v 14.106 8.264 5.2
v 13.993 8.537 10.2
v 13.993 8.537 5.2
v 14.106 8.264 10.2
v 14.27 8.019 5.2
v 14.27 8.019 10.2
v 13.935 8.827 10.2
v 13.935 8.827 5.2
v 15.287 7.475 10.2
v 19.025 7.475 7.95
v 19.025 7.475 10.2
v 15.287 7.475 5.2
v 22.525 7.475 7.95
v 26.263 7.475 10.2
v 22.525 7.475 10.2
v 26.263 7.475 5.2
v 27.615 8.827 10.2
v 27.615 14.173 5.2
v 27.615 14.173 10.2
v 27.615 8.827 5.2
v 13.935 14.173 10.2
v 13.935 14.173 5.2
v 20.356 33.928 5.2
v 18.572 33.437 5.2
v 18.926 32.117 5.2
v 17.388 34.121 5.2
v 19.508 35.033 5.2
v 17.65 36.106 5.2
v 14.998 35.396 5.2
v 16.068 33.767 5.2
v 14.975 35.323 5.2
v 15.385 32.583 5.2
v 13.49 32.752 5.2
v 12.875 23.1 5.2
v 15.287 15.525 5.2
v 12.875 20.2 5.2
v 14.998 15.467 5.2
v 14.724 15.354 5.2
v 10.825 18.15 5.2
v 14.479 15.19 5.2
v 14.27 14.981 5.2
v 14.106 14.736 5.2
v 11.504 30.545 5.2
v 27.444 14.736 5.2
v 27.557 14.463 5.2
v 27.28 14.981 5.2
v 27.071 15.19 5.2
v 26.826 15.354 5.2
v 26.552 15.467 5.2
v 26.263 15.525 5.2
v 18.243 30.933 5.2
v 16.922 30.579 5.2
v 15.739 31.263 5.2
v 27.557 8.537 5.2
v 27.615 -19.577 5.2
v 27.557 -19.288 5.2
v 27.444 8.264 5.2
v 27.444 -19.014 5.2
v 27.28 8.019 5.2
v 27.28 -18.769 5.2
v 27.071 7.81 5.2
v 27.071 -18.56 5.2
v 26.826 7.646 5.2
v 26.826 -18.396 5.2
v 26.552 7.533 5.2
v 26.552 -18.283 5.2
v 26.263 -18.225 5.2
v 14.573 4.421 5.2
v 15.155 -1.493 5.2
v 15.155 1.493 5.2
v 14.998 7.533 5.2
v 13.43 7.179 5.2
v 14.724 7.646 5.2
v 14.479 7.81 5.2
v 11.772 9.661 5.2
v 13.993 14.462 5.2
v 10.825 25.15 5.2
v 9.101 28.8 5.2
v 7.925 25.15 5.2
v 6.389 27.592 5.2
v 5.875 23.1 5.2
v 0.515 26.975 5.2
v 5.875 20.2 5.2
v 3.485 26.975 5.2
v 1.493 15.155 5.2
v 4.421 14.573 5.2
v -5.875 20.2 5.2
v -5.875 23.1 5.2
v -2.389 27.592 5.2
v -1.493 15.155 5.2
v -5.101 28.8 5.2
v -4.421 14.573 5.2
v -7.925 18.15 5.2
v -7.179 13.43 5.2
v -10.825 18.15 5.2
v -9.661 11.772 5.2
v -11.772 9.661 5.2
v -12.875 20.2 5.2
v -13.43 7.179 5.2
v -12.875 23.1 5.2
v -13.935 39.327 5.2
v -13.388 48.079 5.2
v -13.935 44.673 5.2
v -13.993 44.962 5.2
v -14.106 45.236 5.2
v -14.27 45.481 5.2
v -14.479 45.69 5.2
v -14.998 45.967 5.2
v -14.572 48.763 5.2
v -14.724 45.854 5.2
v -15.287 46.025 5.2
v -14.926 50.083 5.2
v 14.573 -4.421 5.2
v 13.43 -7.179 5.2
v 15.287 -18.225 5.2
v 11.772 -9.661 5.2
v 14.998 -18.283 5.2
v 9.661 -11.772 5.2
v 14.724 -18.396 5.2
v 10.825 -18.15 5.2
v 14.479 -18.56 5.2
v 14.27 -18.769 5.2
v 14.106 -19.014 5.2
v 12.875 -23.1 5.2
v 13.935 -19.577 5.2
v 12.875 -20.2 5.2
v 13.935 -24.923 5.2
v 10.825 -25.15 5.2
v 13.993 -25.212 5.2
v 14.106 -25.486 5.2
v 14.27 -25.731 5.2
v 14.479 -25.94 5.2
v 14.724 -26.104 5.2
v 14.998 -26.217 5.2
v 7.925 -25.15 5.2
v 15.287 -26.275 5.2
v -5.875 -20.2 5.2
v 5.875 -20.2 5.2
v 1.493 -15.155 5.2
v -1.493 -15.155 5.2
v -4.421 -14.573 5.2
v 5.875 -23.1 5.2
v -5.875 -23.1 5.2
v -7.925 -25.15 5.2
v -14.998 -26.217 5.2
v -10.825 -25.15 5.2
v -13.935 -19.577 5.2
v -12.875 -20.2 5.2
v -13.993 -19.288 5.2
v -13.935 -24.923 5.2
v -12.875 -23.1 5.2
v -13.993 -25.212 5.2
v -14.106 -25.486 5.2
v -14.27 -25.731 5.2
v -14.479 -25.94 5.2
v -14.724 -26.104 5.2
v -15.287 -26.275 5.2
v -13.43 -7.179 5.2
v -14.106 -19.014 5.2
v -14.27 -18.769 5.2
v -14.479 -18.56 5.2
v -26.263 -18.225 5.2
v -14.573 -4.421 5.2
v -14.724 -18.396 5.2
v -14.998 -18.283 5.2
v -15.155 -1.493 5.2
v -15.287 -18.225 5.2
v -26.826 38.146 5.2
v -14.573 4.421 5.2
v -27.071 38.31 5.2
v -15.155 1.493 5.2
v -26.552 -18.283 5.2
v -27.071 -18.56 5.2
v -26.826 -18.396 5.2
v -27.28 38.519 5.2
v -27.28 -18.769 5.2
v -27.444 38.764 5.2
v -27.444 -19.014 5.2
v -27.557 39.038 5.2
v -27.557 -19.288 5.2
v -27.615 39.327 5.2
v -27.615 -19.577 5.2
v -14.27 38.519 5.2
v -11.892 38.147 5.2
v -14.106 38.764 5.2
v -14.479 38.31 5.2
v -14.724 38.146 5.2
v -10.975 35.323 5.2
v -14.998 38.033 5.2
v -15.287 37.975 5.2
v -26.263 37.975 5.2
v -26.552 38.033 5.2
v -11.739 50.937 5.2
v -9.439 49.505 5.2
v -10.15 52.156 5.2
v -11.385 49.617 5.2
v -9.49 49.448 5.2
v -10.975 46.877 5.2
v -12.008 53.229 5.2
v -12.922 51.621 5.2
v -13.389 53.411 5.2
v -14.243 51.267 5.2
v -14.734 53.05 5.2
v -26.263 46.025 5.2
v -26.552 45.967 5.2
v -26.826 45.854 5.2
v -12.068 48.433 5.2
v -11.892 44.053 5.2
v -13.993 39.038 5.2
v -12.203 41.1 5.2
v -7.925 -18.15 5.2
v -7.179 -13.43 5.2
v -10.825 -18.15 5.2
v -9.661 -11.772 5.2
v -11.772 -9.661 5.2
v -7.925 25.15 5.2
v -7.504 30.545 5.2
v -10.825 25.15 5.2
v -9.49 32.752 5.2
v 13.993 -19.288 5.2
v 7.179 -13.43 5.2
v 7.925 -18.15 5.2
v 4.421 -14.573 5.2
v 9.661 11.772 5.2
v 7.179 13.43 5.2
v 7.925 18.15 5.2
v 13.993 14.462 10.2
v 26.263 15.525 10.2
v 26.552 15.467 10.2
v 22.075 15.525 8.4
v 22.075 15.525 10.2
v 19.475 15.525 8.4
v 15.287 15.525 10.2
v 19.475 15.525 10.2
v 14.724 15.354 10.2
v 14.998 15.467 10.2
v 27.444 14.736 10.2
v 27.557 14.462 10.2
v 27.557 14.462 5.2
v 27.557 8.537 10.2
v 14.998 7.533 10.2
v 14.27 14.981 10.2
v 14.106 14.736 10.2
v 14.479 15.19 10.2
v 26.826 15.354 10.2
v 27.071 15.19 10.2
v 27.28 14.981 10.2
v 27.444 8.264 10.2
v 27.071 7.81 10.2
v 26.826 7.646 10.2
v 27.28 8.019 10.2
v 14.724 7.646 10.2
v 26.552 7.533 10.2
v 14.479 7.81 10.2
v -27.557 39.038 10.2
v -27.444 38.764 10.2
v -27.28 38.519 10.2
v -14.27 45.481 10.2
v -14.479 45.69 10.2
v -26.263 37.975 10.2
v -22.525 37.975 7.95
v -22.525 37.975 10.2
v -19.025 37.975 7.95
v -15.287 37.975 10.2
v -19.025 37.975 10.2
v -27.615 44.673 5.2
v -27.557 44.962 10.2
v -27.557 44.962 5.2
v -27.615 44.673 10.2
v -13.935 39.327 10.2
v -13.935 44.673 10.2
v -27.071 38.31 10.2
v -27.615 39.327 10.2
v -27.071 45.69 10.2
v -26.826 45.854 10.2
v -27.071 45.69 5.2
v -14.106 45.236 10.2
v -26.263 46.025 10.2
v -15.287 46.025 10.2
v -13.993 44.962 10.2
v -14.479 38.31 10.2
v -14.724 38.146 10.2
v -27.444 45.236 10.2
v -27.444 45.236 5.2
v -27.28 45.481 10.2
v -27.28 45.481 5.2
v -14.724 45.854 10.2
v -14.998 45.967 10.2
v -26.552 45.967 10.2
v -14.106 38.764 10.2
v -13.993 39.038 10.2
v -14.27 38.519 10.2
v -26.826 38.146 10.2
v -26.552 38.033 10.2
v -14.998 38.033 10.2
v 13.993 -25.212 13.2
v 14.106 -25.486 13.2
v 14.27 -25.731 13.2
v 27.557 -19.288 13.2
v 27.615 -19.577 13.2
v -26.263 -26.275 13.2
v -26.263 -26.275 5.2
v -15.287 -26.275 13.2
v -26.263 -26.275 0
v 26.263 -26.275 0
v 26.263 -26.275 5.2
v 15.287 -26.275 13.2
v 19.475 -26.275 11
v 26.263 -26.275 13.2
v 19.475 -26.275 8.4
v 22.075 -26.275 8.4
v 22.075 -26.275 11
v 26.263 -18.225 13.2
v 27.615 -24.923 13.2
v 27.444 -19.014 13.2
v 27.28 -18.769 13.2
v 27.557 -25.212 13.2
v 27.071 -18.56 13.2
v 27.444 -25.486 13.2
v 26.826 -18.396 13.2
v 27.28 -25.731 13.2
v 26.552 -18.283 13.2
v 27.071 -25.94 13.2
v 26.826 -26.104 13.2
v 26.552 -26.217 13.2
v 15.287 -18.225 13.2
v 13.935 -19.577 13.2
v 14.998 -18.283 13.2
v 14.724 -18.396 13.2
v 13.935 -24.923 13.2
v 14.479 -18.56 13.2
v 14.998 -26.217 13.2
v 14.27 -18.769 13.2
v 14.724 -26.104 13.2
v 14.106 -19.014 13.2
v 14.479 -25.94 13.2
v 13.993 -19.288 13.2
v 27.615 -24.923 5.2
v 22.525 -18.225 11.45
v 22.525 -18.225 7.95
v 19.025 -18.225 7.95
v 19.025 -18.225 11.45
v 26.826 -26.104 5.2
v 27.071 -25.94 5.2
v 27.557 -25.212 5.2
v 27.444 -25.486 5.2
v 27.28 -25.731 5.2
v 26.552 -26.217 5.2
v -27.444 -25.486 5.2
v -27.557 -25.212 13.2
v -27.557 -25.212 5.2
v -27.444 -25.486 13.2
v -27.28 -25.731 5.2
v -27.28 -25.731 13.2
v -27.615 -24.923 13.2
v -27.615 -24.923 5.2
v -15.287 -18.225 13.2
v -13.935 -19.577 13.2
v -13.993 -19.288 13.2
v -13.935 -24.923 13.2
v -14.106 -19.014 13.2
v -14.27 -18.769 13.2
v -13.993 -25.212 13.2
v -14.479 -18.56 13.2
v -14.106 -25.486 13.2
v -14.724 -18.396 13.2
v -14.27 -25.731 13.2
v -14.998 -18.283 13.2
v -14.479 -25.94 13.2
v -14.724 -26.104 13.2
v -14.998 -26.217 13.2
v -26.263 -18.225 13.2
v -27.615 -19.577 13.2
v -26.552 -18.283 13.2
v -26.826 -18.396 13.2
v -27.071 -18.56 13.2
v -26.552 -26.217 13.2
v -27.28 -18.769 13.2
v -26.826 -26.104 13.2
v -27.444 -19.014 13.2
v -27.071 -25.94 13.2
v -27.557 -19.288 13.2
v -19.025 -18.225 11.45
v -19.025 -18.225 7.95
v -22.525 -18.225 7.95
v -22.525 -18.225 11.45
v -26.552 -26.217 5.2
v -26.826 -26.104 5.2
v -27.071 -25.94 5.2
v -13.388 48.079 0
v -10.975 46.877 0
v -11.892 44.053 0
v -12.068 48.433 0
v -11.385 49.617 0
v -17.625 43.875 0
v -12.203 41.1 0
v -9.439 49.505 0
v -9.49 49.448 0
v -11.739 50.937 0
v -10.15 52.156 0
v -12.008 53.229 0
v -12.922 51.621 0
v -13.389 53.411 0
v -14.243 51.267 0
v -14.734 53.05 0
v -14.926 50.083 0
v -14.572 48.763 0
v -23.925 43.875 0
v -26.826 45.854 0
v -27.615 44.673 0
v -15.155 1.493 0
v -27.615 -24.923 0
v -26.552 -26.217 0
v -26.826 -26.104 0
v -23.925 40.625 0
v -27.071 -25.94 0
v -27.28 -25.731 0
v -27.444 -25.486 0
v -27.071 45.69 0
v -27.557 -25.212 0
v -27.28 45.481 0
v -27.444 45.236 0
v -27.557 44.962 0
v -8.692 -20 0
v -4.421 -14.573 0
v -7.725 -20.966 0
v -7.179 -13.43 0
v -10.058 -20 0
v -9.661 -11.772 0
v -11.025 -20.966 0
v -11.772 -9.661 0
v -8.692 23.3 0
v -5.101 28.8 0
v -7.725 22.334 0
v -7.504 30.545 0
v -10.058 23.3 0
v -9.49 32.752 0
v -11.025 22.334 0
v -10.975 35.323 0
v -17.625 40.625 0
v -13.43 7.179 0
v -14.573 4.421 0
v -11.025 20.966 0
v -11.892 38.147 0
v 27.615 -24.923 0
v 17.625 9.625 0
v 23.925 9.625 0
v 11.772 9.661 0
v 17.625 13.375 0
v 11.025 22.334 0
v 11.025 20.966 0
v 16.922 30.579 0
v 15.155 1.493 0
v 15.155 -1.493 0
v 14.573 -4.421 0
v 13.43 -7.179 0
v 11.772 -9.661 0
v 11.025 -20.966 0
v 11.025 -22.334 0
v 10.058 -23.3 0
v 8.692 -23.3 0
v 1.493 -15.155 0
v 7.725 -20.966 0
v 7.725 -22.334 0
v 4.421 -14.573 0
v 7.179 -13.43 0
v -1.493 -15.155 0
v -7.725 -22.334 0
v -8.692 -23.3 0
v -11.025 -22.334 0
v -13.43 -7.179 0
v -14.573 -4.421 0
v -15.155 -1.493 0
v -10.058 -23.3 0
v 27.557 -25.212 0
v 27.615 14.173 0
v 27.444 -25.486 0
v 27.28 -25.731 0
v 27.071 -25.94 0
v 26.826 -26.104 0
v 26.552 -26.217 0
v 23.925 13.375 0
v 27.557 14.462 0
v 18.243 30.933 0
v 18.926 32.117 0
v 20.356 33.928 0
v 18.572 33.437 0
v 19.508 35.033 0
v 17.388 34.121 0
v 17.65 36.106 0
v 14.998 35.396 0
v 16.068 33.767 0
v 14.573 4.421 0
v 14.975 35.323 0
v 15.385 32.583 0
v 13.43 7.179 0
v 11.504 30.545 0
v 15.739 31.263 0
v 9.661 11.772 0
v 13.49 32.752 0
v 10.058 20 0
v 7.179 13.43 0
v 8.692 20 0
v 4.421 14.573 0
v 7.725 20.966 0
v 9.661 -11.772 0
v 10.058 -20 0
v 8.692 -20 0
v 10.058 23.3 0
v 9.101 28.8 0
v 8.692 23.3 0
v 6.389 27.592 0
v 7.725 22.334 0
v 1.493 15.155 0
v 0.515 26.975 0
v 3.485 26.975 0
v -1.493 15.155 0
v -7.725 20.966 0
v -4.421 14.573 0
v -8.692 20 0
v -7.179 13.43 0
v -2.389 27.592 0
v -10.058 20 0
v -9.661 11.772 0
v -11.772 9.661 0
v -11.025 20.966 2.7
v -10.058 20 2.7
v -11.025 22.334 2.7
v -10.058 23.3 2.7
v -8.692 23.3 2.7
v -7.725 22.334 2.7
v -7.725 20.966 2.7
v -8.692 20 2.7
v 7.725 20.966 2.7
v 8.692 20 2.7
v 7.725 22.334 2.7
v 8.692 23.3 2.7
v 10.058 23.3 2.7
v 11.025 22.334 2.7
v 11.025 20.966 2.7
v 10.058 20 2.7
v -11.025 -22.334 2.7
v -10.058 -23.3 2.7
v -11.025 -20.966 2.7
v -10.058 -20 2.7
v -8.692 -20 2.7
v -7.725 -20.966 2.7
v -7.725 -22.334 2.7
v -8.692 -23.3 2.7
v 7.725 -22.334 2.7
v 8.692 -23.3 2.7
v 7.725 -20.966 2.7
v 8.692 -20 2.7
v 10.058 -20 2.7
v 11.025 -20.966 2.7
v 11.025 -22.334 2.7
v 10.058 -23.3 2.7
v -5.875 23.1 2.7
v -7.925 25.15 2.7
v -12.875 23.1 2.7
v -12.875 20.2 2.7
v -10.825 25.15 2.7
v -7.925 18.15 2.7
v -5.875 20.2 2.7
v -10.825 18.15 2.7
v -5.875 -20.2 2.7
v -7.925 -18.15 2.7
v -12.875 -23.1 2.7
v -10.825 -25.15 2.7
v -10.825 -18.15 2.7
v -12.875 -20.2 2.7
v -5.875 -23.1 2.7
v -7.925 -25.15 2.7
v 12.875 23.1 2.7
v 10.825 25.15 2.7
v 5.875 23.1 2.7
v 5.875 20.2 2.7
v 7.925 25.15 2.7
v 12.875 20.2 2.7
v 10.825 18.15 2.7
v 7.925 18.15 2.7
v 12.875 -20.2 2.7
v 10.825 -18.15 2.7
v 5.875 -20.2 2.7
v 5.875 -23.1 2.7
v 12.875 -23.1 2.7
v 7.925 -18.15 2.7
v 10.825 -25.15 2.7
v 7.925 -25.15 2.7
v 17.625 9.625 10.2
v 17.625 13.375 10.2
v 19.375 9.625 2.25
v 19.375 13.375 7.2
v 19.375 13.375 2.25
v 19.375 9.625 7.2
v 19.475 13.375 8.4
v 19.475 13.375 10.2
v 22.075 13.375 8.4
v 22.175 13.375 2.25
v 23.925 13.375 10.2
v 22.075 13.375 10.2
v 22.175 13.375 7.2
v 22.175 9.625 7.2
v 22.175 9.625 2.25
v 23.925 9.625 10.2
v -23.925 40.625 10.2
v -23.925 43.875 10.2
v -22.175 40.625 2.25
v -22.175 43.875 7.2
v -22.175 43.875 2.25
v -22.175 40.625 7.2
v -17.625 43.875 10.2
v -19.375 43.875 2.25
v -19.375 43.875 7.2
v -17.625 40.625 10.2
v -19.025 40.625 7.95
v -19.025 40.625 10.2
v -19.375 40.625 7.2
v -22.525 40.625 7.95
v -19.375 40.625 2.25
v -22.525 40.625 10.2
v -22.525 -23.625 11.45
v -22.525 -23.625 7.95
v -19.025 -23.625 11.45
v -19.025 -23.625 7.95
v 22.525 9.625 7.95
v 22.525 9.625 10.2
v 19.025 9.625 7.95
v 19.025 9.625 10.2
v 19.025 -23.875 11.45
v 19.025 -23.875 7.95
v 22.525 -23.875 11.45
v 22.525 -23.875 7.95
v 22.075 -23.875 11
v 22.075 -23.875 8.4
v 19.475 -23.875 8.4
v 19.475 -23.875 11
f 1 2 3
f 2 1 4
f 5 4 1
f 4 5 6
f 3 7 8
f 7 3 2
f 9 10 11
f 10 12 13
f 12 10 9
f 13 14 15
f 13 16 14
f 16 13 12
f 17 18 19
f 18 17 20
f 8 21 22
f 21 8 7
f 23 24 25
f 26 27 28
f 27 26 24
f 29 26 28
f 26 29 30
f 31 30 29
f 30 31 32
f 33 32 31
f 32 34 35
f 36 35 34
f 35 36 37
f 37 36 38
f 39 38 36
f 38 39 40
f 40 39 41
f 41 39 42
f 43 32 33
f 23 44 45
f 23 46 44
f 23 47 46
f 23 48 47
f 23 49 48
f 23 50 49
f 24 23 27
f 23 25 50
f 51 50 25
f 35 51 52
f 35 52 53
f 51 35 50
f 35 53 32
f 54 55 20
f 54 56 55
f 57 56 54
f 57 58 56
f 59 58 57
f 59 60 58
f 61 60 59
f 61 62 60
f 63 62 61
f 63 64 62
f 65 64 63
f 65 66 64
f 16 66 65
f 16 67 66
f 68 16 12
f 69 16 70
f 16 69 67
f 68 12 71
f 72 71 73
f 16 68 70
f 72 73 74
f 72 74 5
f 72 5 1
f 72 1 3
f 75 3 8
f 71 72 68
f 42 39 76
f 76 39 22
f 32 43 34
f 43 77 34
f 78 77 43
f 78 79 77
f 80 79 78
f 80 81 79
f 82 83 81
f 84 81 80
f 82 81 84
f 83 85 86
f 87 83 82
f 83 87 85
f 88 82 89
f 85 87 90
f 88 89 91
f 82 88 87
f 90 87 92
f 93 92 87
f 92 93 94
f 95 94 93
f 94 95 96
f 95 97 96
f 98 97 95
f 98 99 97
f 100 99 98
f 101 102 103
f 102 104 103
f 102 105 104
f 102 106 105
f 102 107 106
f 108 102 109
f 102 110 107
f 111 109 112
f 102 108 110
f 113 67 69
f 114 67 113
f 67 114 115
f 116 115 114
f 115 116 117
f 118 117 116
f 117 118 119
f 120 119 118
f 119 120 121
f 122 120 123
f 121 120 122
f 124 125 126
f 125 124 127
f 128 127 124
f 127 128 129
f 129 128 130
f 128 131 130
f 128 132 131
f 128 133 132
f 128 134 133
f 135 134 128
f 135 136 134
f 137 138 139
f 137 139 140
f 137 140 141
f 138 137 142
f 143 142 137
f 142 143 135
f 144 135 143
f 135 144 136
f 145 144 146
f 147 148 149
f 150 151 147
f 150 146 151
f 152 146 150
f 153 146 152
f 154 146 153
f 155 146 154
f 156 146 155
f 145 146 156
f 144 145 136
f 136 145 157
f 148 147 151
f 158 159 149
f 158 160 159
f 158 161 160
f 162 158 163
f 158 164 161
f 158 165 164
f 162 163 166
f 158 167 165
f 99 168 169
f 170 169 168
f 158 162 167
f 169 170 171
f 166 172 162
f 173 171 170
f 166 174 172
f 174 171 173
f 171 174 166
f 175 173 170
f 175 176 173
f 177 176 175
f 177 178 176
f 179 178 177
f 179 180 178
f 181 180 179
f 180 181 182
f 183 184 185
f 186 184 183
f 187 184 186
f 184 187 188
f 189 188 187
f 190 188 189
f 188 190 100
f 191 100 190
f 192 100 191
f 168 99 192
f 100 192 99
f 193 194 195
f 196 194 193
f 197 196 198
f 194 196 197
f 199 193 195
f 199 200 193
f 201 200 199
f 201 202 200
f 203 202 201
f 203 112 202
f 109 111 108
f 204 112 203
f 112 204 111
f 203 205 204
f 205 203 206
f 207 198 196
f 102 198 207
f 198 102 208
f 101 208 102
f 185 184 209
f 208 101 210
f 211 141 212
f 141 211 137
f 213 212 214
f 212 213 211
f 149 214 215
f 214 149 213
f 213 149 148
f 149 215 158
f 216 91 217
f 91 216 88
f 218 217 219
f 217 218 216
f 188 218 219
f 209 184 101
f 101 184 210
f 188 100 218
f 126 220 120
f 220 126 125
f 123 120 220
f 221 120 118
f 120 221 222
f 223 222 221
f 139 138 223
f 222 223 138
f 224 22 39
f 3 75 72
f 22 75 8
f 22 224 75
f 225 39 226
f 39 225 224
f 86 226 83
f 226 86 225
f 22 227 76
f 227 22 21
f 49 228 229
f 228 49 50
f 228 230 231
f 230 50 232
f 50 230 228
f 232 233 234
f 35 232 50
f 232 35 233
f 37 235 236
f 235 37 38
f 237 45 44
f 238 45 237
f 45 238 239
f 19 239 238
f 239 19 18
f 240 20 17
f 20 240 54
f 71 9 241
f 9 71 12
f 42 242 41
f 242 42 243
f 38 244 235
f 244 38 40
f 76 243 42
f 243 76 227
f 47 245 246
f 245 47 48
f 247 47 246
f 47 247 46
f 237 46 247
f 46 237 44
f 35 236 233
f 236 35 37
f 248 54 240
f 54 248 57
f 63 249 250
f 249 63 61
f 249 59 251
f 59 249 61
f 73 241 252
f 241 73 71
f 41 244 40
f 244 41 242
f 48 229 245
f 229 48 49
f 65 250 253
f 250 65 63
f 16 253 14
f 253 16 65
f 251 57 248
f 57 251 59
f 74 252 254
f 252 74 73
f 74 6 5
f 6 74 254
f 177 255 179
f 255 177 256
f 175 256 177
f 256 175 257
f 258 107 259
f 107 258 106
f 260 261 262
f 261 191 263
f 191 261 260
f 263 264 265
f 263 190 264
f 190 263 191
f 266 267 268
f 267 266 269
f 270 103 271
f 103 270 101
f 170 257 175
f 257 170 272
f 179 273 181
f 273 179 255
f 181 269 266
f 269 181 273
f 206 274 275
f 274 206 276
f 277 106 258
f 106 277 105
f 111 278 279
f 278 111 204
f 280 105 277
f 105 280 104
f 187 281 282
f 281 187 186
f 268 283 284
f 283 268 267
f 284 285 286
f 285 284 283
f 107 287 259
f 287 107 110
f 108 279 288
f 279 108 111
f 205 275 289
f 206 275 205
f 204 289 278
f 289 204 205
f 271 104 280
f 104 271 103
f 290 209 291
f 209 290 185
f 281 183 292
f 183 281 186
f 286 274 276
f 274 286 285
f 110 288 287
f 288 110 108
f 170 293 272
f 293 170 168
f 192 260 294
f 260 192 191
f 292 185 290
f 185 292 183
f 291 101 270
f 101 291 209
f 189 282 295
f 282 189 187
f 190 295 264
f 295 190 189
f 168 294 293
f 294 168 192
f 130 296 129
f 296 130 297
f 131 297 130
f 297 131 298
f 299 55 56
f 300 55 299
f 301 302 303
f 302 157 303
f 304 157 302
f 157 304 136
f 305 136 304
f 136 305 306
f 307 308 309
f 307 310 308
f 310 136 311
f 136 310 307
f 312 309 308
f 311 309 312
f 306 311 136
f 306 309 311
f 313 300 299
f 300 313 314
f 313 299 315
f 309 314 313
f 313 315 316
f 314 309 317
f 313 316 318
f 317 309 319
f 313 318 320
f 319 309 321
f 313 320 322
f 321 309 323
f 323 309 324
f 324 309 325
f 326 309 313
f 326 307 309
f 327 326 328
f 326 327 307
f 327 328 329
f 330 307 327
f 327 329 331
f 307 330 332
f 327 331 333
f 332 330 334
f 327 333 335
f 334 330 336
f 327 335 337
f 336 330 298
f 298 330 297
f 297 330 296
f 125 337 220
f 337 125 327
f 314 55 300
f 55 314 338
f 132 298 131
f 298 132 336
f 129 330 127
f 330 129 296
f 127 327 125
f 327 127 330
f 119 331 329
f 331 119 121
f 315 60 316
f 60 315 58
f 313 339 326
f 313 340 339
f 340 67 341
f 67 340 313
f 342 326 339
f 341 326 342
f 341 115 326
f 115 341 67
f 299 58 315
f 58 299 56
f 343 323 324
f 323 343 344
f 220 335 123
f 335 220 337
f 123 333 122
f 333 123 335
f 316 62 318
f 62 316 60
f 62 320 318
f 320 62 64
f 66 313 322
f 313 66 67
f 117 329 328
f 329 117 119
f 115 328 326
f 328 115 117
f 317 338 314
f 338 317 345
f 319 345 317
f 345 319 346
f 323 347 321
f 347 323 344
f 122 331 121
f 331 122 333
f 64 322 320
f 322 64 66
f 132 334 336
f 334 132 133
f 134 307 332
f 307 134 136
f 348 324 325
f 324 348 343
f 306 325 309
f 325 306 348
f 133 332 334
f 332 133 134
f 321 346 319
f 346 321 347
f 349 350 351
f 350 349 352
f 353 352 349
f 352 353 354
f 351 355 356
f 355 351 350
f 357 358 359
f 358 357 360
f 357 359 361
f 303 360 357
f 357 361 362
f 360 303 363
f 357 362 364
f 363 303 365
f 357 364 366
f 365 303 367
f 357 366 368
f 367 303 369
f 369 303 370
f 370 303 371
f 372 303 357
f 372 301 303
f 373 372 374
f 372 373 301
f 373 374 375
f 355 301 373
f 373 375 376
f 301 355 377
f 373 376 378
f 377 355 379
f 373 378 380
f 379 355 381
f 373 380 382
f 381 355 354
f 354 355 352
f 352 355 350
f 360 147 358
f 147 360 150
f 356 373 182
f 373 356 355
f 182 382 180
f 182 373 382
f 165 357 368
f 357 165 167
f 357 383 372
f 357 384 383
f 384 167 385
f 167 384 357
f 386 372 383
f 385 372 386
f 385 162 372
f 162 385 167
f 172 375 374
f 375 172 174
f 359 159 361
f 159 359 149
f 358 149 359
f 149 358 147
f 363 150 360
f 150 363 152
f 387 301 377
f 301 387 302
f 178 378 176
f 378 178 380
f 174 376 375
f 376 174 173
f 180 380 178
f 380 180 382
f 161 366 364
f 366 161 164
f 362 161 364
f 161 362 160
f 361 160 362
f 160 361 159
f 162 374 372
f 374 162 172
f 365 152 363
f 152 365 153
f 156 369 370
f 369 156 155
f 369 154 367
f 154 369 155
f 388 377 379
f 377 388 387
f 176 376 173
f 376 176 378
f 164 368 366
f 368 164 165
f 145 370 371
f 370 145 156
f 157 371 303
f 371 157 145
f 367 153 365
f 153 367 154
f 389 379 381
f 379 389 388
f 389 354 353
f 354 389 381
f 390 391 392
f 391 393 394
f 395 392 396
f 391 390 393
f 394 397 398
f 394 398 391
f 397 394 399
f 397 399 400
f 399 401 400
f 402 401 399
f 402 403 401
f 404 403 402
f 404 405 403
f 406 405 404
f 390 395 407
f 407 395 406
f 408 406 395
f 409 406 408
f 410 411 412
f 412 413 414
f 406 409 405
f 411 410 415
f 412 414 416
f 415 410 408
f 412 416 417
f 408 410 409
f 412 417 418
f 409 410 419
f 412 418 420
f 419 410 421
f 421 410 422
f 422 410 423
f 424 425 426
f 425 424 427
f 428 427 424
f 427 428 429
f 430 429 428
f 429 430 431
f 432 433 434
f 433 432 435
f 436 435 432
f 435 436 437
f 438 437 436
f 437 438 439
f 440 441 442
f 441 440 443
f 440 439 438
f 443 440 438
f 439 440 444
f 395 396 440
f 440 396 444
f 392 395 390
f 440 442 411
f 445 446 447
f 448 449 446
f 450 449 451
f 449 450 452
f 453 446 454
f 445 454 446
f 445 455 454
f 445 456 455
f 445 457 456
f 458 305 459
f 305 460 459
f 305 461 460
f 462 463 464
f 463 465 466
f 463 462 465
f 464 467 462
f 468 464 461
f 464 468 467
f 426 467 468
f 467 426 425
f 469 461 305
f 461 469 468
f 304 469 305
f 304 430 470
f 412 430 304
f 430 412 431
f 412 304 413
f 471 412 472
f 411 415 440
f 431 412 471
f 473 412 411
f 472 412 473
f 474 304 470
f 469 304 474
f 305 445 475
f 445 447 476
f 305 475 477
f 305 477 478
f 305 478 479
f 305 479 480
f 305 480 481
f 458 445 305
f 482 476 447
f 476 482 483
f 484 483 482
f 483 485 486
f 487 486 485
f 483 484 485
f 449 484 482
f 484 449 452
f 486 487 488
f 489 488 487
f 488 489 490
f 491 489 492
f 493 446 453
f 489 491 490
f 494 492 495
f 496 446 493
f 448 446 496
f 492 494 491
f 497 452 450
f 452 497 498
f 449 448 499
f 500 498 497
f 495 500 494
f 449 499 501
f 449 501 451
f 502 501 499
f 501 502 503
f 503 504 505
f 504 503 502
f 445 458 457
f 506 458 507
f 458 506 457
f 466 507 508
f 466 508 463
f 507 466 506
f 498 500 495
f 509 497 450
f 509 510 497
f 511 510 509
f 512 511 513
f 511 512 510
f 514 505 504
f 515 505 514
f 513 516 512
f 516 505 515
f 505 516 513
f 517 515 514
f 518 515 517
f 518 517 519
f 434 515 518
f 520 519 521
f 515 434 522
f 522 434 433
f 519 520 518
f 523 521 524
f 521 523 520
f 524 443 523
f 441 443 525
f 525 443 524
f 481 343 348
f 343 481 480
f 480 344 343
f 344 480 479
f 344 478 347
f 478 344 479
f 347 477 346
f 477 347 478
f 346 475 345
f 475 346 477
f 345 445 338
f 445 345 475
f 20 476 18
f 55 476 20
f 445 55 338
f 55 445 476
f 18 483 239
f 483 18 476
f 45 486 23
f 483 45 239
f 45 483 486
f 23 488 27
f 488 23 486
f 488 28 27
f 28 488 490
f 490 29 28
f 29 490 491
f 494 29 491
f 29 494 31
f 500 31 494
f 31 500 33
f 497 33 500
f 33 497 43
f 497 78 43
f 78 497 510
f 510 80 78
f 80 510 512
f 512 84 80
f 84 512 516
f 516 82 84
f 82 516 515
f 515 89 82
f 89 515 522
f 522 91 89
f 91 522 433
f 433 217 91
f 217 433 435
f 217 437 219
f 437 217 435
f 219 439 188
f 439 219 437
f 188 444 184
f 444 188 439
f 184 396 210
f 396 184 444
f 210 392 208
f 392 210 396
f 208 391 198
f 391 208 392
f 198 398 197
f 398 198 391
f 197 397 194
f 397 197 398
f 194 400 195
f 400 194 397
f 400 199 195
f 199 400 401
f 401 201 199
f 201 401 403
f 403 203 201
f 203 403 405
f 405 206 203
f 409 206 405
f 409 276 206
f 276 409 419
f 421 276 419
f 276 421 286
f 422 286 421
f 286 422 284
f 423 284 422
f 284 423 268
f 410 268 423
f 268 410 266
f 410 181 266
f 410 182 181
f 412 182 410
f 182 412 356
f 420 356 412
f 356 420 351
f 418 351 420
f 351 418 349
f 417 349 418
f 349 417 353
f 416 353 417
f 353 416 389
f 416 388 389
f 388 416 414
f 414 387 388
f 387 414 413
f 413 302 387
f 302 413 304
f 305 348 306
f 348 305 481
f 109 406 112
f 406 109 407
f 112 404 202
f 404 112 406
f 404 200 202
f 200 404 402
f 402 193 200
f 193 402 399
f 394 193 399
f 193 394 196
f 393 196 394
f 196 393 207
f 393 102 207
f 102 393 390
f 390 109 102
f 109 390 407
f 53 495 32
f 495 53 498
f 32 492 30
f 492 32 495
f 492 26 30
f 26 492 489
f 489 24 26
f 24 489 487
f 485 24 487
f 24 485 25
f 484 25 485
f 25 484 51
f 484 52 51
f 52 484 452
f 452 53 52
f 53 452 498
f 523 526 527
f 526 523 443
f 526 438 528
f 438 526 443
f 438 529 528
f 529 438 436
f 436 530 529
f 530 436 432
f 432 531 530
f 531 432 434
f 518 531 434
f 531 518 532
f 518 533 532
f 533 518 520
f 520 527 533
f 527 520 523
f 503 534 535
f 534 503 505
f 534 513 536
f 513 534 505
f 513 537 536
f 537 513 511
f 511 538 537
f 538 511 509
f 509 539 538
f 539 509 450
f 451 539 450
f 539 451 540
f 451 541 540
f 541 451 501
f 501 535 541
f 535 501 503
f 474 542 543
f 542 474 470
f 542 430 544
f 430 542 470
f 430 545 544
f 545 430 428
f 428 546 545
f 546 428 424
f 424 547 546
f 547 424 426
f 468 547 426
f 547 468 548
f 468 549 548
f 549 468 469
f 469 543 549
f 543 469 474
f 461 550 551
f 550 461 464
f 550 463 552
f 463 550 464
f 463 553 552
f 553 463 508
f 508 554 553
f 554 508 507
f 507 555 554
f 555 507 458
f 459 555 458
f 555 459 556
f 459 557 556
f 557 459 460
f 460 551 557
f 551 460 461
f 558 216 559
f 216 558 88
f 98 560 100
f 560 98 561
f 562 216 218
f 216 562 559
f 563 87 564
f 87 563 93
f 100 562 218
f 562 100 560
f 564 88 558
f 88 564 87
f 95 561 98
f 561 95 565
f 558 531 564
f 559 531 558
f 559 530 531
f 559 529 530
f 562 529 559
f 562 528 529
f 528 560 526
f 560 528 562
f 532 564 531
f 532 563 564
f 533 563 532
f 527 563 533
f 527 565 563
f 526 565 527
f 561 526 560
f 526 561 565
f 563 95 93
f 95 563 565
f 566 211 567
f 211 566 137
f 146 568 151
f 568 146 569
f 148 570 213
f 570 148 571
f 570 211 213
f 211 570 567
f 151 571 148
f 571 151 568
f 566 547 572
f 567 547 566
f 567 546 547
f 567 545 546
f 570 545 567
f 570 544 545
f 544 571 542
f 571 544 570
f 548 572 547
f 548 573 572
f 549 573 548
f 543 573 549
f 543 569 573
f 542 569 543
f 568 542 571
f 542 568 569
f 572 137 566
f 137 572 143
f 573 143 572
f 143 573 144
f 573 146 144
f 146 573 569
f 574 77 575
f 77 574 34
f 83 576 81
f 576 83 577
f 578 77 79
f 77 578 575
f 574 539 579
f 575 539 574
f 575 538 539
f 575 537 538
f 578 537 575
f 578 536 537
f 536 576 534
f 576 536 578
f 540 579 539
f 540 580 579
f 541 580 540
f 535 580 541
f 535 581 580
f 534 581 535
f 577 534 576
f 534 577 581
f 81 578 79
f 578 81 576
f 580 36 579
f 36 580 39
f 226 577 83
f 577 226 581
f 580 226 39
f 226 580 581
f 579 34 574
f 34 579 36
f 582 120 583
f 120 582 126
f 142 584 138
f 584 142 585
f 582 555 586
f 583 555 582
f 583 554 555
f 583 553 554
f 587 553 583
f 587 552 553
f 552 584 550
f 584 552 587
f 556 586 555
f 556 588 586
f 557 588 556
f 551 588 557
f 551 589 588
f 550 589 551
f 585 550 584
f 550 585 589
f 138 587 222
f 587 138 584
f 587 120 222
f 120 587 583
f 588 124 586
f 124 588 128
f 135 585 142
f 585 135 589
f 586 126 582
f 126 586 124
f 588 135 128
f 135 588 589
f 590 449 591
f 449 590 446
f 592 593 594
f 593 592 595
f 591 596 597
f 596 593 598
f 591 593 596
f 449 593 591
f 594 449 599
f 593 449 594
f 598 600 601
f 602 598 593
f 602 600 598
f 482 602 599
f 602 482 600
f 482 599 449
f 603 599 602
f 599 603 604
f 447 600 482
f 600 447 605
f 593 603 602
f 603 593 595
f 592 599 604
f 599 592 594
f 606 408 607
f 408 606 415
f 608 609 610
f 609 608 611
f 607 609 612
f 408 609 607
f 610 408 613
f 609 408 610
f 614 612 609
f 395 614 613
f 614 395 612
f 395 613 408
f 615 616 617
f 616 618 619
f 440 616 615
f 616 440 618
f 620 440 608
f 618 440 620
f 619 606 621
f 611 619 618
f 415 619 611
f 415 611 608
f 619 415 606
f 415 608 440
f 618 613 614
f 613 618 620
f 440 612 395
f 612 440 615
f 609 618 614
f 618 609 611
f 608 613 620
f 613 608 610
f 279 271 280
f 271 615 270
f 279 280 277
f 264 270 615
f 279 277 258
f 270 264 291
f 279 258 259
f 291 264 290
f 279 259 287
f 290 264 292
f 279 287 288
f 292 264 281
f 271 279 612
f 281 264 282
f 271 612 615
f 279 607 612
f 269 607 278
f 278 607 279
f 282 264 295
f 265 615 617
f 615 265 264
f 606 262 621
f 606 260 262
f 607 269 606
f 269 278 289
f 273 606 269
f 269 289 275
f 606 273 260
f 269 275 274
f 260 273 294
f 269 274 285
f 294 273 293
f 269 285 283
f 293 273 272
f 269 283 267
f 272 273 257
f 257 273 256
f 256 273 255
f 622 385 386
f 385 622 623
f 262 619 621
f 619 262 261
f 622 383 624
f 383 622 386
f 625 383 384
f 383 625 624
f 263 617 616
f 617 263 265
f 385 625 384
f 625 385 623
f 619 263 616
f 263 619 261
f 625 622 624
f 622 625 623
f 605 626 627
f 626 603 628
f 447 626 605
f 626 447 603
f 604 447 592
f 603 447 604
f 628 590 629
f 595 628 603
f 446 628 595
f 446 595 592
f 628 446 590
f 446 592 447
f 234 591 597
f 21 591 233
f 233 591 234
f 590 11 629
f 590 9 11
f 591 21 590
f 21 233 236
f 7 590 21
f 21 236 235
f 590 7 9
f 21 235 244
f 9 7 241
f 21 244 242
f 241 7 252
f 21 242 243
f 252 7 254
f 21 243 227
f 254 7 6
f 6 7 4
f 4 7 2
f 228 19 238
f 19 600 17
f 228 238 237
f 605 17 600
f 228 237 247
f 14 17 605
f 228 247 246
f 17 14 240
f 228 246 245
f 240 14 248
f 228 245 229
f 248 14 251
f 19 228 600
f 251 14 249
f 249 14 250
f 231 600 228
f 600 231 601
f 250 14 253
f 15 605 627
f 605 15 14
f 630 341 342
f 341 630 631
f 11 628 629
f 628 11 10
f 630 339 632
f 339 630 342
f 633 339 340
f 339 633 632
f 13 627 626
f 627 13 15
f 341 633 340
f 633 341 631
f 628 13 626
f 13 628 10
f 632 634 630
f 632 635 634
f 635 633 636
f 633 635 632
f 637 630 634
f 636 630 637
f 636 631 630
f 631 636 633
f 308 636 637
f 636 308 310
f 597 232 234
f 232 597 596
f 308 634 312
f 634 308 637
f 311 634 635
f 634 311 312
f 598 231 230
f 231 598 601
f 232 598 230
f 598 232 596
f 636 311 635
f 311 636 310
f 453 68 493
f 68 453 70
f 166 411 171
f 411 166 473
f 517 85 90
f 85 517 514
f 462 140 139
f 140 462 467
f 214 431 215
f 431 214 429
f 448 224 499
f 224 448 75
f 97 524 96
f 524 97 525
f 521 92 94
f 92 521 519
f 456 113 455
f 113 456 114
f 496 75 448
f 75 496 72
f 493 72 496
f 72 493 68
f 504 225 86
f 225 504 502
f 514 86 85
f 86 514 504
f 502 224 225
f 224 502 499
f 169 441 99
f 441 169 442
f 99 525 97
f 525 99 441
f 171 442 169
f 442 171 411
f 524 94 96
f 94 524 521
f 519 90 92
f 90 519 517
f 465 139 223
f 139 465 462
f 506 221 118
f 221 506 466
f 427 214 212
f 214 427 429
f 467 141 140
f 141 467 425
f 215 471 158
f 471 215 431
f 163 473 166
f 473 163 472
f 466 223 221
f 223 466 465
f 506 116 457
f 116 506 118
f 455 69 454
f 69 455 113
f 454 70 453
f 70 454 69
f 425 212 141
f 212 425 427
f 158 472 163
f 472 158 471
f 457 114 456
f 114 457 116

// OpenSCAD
// file: util.scad
function accurate_diam(diam,sides) = 1 / cos(180/sides) / 2 * diam;

module hole(diam,len,sides=8) {
  rotate([0,0,180/sides]) {
    cylinder(r=accurate_diam(diam,sides),h=len,center=true,$fn=sides);
  }
}

module accurate_circle(diam,sides=8) {
  rotate([0,0,180/sides]) {
    circle(r=accurate_diam(diam,sides),$fn=sides);
  }
}

module debug_axes() {
  color("red") {
    translate([50,0,0]) cube([100,.2,.2],center=true);
    translate([0,50,0]) cube([.2,100,.2],center=true);
    translate([0,0,50]) cube([.2,.2,100],center=true);
  }
}

module ring(id,thickness,height,fn=16) {
  od = id + thickness;
  linear_extrude(height=height,center=true) {
    difference() {
      accurate_circle(od,fn);
      accurate_circle(id,fn);
    }
  }
}

module rounded_square(width,depth,diam,fn=resolution) {
  pos_x = width/2-diam/2;
  pos_y = depth/2-diam/2;

  hull() {
    for(x=[left,right]) {
      for(y=[front,rear]) {
        translate([x*pos_x,y*pos_y,0]) {
          accurate_circle(diam,fn);
        }
      }
    }
  }
}

module rounded_cube(width,depth,height,diam,fn=resolution) {
  linear_extrude(height=height,center=true,convexity=3) {
    rounded_square(width,depth,diam,fn);
  }
}
// main file
include <main.scad>;

z_axis_mount();

// translate([0,rear*(z_axis_mount_thickness+z_rod_from_surface+z_rod_diam/2+1.5),0]) {
//   rotate([90,0,0]) {
//     z_axis_mount();
//   }
// }
//
//z_carriage();
